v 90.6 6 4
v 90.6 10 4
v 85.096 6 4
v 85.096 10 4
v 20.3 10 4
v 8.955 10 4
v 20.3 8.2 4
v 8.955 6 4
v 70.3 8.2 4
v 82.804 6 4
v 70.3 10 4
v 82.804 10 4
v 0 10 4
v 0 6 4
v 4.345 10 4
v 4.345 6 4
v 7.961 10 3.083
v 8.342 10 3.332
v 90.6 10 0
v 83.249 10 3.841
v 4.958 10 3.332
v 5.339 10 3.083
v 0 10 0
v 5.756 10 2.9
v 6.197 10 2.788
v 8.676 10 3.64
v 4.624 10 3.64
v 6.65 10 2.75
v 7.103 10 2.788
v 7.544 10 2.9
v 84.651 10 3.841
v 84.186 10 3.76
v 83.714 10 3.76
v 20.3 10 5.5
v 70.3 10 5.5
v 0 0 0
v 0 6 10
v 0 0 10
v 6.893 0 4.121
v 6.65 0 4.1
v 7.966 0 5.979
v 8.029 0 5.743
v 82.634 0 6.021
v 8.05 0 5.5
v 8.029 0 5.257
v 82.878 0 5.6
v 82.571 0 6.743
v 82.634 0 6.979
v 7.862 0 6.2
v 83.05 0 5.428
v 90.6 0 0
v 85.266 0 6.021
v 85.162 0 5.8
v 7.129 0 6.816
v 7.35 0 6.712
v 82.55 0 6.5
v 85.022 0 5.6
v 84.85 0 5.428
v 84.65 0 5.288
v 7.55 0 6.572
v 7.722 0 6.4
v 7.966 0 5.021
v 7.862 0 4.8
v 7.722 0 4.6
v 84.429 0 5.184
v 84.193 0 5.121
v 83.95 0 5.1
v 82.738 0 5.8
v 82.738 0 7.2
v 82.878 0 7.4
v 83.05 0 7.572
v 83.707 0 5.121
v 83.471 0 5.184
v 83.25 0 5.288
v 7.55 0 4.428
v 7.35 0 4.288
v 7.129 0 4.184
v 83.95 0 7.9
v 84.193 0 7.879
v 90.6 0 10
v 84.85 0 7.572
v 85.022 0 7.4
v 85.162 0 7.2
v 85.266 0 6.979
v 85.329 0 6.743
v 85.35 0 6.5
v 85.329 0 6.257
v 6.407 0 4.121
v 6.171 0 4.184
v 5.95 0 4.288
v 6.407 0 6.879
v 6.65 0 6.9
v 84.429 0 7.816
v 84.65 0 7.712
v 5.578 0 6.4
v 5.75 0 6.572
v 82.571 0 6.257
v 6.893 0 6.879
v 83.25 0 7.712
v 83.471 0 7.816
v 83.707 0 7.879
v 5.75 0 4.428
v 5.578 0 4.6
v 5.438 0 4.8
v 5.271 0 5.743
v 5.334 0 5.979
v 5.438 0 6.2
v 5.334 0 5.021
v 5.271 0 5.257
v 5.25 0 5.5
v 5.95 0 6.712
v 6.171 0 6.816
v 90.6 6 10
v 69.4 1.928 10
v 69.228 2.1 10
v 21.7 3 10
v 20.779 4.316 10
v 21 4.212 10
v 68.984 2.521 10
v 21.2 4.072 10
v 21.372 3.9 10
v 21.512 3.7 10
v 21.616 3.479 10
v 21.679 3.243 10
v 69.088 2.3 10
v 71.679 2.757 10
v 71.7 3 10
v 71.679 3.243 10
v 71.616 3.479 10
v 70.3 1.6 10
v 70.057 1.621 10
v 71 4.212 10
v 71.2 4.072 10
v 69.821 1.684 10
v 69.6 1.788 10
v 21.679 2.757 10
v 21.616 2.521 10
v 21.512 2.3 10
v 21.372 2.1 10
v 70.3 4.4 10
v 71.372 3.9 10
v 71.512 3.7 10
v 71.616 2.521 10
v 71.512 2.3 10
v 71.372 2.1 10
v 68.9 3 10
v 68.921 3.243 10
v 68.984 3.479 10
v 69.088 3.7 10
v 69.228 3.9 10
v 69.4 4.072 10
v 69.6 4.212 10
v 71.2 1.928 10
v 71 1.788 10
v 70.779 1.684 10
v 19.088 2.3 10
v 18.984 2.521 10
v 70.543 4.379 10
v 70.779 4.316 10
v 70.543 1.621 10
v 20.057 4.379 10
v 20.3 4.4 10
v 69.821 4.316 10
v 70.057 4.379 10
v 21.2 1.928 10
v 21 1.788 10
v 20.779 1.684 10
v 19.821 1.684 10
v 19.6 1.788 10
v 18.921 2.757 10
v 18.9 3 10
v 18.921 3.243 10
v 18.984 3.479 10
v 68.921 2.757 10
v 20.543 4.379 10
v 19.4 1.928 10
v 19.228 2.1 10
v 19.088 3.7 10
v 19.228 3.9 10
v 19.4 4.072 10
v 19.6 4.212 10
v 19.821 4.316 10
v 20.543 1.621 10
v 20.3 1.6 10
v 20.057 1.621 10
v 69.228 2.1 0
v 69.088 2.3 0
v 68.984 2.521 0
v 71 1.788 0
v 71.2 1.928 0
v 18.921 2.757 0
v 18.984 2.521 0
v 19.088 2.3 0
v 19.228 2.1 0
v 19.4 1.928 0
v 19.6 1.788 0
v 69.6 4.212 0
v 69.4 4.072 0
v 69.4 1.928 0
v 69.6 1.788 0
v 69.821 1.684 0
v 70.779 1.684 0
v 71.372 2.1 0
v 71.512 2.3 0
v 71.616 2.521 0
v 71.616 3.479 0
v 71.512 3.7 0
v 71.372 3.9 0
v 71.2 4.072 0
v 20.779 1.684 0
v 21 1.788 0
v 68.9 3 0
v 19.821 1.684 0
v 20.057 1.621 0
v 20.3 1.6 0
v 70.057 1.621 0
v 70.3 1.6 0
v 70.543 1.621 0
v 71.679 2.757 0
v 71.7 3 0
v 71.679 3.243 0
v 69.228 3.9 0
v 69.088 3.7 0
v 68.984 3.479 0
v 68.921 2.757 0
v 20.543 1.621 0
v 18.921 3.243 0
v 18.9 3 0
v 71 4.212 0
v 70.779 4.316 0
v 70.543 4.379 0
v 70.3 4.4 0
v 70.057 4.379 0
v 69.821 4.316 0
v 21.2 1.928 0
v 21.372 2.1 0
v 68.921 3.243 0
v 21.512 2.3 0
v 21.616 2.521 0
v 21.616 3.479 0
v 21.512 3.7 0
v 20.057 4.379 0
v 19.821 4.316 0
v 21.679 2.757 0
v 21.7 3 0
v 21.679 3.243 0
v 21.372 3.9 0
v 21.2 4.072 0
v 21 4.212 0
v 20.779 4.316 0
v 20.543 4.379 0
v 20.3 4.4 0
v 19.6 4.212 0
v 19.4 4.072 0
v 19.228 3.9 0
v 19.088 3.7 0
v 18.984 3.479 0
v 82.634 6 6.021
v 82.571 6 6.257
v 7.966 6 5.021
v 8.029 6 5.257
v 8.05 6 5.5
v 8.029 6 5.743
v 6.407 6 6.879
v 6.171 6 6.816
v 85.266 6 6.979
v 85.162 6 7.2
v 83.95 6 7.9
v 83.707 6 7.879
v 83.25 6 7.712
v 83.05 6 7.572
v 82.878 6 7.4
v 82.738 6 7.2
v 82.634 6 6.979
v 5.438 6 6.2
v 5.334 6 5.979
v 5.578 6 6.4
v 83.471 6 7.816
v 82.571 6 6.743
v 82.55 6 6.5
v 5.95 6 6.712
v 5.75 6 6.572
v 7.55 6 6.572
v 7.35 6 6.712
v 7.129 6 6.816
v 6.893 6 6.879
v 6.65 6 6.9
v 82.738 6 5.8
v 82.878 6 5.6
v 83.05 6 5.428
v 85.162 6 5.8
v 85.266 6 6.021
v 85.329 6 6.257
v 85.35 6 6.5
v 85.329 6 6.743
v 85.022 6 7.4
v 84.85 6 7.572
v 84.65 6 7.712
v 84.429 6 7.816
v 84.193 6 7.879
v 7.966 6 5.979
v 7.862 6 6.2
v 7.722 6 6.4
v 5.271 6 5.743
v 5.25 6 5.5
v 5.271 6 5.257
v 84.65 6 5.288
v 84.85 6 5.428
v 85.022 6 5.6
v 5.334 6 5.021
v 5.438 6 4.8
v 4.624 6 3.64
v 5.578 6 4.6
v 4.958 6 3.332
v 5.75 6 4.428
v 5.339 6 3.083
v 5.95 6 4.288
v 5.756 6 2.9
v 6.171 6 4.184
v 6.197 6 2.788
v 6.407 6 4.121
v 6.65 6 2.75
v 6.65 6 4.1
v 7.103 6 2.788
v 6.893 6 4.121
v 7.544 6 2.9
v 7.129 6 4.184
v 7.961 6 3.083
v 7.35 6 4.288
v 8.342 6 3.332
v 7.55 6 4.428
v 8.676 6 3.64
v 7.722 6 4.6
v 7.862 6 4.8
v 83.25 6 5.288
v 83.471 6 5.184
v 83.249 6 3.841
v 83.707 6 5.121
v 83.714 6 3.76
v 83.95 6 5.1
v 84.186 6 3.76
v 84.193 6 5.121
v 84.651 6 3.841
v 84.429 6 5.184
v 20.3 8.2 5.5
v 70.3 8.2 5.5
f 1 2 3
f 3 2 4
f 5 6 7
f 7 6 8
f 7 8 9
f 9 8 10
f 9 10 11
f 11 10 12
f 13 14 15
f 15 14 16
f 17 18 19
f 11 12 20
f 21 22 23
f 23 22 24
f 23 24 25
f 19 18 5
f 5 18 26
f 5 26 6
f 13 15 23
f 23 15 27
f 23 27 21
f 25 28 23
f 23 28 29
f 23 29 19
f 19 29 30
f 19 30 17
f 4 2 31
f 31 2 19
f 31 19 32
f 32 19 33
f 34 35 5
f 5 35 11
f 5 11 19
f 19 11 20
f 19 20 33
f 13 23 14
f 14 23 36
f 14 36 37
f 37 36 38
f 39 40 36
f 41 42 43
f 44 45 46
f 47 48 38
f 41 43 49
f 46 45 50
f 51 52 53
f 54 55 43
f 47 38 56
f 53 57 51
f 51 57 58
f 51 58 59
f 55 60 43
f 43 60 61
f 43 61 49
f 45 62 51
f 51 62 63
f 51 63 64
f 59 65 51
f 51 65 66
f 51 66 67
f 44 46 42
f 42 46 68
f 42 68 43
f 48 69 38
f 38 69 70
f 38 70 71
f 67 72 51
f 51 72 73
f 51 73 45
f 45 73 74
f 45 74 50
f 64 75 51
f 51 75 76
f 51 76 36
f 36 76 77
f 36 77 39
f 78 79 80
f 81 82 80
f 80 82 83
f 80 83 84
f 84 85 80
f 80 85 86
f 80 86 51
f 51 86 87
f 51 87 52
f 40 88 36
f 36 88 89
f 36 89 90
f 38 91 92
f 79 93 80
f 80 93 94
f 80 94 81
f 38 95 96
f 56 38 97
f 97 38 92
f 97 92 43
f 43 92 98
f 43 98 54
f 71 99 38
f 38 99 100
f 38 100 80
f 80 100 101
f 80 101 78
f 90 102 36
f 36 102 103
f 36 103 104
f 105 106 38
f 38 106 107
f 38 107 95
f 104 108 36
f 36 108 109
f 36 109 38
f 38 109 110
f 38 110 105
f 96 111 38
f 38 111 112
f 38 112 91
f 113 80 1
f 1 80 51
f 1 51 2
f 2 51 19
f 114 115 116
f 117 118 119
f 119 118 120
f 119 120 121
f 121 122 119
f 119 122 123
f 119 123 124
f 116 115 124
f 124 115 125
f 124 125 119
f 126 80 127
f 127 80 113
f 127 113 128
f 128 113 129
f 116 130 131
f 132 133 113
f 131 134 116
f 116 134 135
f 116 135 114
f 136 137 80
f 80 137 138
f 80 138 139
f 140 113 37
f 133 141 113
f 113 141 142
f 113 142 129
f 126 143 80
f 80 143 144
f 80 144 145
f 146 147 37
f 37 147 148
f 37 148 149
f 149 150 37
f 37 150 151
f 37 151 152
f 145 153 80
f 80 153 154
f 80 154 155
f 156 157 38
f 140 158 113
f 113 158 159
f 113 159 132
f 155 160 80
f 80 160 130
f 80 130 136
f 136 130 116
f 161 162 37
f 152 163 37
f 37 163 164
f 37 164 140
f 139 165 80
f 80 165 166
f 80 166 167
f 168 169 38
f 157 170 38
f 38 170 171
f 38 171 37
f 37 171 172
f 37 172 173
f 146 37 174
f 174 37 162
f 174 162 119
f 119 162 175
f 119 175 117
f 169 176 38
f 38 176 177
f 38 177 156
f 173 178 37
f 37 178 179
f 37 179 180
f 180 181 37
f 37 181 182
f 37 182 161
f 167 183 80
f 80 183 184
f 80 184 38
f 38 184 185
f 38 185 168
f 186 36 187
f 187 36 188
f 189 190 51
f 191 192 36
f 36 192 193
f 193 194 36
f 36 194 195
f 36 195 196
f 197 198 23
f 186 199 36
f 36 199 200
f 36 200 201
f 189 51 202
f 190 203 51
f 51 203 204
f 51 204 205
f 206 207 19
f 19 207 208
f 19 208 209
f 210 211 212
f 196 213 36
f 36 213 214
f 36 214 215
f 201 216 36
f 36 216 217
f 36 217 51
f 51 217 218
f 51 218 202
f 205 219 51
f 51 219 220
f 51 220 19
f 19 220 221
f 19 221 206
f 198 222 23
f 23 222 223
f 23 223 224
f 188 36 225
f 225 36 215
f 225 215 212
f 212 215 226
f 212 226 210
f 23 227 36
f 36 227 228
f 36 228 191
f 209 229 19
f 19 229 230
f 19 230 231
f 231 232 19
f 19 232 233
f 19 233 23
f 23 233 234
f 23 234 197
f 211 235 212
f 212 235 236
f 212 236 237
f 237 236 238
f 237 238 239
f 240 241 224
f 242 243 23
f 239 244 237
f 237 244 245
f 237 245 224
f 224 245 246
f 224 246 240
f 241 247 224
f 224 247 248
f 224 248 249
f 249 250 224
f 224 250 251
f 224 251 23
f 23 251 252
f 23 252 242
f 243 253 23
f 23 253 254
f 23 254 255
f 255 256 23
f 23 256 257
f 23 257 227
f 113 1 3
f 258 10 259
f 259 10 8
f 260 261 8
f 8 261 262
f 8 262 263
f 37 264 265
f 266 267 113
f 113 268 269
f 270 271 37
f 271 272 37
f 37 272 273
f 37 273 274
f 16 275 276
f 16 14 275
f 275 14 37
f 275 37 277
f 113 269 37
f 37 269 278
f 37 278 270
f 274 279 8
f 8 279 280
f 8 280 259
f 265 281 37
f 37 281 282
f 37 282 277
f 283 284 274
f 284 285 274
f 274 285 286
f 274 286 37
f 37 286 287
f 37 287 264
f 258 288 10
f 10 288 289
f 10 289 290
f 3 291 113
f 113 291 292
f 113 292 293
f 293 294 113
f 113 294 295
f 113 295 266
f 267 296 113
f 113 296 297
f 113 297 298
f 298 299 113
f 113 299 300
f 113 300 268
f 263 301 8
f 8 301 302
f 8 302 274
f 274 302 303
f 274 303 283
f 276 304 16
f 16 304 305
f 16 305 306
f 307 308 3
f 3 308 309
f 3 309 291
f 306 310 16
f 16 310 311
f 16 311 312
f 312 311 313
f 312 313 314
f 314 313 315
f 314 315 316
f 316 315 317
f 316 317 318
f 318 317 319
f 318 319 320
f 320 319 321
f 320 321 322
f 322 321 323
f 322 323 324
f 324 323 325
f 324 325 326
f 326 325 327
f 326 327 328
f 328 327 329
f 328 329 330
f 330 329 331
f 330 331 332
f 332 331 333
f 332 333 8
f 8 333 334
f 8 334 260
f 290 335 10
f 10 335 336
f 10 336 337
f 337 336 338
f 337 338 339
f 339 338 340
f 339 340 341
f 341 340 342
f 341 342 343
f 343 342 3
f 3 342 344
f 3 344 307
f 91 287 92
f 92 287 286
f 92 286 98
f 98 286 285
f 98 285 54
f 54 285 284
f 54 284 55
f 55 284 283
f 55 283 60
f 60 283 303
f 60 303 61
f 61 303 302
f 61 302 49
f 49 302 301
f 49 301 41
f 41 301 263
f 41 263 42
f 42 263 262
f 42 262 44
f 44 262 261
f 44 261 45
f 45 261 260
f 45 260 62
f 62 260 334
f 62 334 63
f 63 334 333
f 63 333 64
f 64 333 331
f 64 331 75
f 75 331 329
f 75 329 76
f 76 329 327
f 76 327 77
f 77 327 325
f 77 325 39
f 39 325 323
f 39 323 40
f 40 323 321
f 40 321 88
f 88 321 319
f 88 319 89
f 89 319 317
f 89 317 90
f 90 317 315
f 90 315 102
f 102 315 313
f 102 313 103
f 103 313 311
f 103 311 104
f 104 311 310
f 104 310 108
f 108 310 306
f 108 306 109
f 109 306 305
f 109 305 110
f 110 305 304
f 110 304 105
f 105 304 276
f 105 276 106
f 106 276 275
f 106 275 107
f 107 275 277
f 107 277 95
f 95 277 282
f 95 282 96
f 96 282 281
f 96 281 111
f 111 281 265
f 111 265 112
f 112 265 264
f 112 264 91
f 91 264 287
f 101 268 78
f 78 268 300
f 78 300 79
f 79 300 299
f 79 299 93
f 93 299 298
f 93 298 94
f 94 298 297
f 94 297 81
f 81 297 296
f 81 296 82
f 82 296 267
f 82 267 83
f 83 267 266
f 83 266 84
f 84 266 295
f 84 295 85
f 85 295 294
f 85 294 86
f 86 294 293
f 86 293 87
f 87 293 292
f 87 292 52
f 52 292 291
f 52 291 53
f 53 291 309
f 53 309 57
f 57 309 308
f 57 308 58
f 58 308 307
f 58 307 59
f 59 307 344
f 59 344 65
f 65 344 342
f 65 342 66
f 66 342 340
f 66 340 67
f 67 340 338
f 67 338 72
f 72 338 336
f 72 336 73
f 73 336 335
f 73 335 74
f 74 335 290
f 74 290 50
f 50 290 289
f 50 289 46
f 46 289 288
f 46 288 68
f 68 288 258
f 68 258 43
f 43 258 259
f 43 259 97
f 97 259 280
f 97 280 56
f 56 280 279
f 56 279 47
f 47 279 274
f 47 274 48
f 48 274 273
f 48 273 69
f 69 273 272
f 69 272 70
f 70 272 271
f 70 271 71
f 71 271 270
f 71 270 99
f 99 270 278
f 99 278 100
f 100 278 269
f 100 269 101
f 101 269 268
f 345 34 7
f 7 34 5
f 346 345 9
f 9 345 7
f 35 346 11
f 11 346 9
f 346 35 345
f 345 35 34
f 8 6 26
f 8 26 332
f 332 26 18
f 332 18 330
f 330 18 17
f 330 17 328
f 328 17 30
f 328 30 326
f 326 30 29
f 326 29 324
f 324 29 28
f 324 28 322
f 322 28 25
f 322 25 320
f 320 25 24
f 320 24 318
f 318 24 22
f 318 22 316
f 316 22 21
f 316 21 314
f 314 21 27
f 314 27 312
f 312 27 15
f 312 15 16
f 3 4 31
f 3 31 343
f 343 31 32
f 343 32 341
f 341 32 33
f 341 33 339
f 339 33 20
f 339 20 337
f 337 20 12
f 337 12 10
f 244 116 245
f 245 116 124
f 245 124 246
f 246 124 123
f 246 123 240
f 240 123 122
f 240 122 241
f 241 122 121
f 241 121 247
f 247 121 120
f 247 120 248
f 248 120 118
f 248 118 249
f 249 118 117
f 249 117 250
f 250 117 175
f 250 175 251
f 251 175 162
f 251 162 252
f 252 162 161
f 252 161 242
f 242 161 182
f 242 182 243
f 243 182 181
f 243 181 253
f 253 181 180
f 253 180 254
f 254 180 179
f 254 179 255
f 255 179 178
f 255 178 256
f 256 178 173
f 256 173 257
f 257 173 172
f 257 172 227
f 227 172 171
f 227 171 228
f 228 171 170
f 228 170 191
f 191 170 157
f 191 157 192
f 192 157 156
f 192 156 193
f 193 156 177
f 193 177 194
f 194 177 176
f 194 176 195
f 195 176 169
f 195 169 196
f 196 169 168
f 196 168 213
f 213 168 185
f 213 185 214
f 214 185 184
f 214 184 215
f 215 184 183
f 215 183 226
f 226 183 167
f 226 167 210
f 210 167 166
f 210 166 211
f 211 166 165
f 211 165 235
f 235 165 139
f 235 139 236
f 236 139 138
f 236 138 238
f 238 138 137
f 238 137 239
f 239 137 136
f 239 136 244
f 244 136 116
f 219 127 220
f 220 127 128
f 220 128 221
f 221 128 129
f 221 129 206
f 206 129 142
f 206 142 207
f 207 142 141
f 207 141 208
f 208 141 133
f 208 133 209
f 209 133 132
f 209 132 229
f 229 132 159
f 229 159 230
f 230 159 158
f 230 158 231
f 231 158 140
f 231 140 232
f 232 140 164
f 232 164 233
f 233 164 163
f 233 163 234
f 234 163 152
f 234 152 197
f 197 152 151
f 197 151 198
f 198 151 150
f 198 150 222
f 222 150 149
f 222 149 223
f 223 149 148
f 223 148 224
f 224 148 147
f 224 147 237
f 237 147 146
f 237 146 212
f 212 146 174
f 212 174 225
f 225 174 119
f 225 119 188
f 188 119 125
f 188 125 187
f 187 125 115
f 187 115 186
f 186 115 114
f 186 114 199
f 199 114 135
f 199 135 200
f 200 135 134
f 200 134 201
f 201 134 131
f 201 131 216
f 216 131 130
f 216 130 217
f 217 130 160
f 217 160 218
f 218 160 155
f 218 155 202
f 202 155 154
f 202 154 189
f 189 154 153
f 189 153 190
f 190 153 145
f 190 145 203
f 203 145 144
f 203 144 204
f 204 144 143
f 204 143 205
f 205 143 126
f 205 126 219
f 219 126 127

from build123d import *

# Parameters (mm, degrees)
ESQUISSE1_W             = 90.6
ESQUISSE1_H             = 10
BOSS_EXTRU_1_DEPTH      = 10
ESQUISSE2_W             = 90.6
ESQUISSE2_H             = 4
ENL_V_MAT_EXTRU_1_DEPTH = 6
ESQUISSE3_R             = 1.4
ENL_V_MAT_EXTRU_2_DEPTH = 6
ESQUISSE4_W             = 50
ESQUISSE4_H             = 1.8
BOSS_EXTRU_2_DEPTH      = 1.5
ESQUISSE5_R             = 2.75
ENL_V_MAT_EXTRU_3_DEPTH = 4
ESQUISSE6_R             = 1.4
ENL_V_MAT_EXTRU_4_DEPTH = 11


with BuildPart() as part:
    # Esquisse1 → Boss.-Extru.1 (new body)
    with BuildSketch(Plane.XY):
        with Locations((45.3, 5)):
            Rectangle(ESQUISSE1_W, ESQUISSE1_H)
    extrude(amount=BOSS_EXTRU_1_DEPTH)

    # Esquisse2 → Enlèv. mat.-Extru.1 (cut)
    with BuildSketch(Plane.XY.offset(10)):
        with Locations((45.3, 8)):
            Rectangle(ESQUISSE2_W, ESQUISSE2_H)
    extrude(amount=-ENL_V_MAT_EXTRU_1_DEPTH, mode=Mode.SUBTRACT)

    # Esquisse3 → Enlèv. mat.-Extru.2 (cut)
    with BuildSketch(Plane(origin=(0, 6, 0), x_dir=(1, 0, 0), z_dir=(0, 1, 0))):
        with Locations((6.65, -5.5)):
            Circle(ESQUISSE3_R)
        with Locations((83.95, -6.5)):
            Circle(ESQUISSE3_R)
    extrude(amount=-ENL_V_MAT_EXTRU_2_DEPTH, mode=Mode.SUBTRACT)

    # Esquisse4 → Boss.-Extru.2 (add)
    with BuildSketch(Plane.XY.offset(4)):
        with Locations((45.3, 9.1)):
            Rectangle(ESQUISSE4_W, ESQUISSE4_H)
    extrude(amount=BOSS_EXTRU_2_DEPTH)

    # Esquisse5 → Enlèv. mat.-Extru.3 (cut)
    with BuildSketch(Plane(origin=(0, 10, 0), x_dir=(1, 0, 0), z_dir=(0, 1, 0))):
        with Locations((6.65, -5.5)):
            Circle(ESQUISSE5_R)
        with Locations((83.95, -6.5)):
            Circle(ESQUISSE5_R)
    extrude(amount=-ENL_V_MAT_EXTRU_3_DEPTH, mode=Mode.SUBTRACT)

    # Esquisse6 → Enlèv. mat.-Extru.4 (cut, through all)
    with BuildSketch(Plane.XY.offset(10)):
        with Locations((20.3, 3)):
            Circle(ESQUISSE6_R)
        with Locations((70.3, 3)):
            Circle(ESQUISSE6_R)
    extrude(amount=-ENL_V_MAT_EXTRU_4_DEPTH, mode=Mode.SUBTRACT)


solid = part.part
